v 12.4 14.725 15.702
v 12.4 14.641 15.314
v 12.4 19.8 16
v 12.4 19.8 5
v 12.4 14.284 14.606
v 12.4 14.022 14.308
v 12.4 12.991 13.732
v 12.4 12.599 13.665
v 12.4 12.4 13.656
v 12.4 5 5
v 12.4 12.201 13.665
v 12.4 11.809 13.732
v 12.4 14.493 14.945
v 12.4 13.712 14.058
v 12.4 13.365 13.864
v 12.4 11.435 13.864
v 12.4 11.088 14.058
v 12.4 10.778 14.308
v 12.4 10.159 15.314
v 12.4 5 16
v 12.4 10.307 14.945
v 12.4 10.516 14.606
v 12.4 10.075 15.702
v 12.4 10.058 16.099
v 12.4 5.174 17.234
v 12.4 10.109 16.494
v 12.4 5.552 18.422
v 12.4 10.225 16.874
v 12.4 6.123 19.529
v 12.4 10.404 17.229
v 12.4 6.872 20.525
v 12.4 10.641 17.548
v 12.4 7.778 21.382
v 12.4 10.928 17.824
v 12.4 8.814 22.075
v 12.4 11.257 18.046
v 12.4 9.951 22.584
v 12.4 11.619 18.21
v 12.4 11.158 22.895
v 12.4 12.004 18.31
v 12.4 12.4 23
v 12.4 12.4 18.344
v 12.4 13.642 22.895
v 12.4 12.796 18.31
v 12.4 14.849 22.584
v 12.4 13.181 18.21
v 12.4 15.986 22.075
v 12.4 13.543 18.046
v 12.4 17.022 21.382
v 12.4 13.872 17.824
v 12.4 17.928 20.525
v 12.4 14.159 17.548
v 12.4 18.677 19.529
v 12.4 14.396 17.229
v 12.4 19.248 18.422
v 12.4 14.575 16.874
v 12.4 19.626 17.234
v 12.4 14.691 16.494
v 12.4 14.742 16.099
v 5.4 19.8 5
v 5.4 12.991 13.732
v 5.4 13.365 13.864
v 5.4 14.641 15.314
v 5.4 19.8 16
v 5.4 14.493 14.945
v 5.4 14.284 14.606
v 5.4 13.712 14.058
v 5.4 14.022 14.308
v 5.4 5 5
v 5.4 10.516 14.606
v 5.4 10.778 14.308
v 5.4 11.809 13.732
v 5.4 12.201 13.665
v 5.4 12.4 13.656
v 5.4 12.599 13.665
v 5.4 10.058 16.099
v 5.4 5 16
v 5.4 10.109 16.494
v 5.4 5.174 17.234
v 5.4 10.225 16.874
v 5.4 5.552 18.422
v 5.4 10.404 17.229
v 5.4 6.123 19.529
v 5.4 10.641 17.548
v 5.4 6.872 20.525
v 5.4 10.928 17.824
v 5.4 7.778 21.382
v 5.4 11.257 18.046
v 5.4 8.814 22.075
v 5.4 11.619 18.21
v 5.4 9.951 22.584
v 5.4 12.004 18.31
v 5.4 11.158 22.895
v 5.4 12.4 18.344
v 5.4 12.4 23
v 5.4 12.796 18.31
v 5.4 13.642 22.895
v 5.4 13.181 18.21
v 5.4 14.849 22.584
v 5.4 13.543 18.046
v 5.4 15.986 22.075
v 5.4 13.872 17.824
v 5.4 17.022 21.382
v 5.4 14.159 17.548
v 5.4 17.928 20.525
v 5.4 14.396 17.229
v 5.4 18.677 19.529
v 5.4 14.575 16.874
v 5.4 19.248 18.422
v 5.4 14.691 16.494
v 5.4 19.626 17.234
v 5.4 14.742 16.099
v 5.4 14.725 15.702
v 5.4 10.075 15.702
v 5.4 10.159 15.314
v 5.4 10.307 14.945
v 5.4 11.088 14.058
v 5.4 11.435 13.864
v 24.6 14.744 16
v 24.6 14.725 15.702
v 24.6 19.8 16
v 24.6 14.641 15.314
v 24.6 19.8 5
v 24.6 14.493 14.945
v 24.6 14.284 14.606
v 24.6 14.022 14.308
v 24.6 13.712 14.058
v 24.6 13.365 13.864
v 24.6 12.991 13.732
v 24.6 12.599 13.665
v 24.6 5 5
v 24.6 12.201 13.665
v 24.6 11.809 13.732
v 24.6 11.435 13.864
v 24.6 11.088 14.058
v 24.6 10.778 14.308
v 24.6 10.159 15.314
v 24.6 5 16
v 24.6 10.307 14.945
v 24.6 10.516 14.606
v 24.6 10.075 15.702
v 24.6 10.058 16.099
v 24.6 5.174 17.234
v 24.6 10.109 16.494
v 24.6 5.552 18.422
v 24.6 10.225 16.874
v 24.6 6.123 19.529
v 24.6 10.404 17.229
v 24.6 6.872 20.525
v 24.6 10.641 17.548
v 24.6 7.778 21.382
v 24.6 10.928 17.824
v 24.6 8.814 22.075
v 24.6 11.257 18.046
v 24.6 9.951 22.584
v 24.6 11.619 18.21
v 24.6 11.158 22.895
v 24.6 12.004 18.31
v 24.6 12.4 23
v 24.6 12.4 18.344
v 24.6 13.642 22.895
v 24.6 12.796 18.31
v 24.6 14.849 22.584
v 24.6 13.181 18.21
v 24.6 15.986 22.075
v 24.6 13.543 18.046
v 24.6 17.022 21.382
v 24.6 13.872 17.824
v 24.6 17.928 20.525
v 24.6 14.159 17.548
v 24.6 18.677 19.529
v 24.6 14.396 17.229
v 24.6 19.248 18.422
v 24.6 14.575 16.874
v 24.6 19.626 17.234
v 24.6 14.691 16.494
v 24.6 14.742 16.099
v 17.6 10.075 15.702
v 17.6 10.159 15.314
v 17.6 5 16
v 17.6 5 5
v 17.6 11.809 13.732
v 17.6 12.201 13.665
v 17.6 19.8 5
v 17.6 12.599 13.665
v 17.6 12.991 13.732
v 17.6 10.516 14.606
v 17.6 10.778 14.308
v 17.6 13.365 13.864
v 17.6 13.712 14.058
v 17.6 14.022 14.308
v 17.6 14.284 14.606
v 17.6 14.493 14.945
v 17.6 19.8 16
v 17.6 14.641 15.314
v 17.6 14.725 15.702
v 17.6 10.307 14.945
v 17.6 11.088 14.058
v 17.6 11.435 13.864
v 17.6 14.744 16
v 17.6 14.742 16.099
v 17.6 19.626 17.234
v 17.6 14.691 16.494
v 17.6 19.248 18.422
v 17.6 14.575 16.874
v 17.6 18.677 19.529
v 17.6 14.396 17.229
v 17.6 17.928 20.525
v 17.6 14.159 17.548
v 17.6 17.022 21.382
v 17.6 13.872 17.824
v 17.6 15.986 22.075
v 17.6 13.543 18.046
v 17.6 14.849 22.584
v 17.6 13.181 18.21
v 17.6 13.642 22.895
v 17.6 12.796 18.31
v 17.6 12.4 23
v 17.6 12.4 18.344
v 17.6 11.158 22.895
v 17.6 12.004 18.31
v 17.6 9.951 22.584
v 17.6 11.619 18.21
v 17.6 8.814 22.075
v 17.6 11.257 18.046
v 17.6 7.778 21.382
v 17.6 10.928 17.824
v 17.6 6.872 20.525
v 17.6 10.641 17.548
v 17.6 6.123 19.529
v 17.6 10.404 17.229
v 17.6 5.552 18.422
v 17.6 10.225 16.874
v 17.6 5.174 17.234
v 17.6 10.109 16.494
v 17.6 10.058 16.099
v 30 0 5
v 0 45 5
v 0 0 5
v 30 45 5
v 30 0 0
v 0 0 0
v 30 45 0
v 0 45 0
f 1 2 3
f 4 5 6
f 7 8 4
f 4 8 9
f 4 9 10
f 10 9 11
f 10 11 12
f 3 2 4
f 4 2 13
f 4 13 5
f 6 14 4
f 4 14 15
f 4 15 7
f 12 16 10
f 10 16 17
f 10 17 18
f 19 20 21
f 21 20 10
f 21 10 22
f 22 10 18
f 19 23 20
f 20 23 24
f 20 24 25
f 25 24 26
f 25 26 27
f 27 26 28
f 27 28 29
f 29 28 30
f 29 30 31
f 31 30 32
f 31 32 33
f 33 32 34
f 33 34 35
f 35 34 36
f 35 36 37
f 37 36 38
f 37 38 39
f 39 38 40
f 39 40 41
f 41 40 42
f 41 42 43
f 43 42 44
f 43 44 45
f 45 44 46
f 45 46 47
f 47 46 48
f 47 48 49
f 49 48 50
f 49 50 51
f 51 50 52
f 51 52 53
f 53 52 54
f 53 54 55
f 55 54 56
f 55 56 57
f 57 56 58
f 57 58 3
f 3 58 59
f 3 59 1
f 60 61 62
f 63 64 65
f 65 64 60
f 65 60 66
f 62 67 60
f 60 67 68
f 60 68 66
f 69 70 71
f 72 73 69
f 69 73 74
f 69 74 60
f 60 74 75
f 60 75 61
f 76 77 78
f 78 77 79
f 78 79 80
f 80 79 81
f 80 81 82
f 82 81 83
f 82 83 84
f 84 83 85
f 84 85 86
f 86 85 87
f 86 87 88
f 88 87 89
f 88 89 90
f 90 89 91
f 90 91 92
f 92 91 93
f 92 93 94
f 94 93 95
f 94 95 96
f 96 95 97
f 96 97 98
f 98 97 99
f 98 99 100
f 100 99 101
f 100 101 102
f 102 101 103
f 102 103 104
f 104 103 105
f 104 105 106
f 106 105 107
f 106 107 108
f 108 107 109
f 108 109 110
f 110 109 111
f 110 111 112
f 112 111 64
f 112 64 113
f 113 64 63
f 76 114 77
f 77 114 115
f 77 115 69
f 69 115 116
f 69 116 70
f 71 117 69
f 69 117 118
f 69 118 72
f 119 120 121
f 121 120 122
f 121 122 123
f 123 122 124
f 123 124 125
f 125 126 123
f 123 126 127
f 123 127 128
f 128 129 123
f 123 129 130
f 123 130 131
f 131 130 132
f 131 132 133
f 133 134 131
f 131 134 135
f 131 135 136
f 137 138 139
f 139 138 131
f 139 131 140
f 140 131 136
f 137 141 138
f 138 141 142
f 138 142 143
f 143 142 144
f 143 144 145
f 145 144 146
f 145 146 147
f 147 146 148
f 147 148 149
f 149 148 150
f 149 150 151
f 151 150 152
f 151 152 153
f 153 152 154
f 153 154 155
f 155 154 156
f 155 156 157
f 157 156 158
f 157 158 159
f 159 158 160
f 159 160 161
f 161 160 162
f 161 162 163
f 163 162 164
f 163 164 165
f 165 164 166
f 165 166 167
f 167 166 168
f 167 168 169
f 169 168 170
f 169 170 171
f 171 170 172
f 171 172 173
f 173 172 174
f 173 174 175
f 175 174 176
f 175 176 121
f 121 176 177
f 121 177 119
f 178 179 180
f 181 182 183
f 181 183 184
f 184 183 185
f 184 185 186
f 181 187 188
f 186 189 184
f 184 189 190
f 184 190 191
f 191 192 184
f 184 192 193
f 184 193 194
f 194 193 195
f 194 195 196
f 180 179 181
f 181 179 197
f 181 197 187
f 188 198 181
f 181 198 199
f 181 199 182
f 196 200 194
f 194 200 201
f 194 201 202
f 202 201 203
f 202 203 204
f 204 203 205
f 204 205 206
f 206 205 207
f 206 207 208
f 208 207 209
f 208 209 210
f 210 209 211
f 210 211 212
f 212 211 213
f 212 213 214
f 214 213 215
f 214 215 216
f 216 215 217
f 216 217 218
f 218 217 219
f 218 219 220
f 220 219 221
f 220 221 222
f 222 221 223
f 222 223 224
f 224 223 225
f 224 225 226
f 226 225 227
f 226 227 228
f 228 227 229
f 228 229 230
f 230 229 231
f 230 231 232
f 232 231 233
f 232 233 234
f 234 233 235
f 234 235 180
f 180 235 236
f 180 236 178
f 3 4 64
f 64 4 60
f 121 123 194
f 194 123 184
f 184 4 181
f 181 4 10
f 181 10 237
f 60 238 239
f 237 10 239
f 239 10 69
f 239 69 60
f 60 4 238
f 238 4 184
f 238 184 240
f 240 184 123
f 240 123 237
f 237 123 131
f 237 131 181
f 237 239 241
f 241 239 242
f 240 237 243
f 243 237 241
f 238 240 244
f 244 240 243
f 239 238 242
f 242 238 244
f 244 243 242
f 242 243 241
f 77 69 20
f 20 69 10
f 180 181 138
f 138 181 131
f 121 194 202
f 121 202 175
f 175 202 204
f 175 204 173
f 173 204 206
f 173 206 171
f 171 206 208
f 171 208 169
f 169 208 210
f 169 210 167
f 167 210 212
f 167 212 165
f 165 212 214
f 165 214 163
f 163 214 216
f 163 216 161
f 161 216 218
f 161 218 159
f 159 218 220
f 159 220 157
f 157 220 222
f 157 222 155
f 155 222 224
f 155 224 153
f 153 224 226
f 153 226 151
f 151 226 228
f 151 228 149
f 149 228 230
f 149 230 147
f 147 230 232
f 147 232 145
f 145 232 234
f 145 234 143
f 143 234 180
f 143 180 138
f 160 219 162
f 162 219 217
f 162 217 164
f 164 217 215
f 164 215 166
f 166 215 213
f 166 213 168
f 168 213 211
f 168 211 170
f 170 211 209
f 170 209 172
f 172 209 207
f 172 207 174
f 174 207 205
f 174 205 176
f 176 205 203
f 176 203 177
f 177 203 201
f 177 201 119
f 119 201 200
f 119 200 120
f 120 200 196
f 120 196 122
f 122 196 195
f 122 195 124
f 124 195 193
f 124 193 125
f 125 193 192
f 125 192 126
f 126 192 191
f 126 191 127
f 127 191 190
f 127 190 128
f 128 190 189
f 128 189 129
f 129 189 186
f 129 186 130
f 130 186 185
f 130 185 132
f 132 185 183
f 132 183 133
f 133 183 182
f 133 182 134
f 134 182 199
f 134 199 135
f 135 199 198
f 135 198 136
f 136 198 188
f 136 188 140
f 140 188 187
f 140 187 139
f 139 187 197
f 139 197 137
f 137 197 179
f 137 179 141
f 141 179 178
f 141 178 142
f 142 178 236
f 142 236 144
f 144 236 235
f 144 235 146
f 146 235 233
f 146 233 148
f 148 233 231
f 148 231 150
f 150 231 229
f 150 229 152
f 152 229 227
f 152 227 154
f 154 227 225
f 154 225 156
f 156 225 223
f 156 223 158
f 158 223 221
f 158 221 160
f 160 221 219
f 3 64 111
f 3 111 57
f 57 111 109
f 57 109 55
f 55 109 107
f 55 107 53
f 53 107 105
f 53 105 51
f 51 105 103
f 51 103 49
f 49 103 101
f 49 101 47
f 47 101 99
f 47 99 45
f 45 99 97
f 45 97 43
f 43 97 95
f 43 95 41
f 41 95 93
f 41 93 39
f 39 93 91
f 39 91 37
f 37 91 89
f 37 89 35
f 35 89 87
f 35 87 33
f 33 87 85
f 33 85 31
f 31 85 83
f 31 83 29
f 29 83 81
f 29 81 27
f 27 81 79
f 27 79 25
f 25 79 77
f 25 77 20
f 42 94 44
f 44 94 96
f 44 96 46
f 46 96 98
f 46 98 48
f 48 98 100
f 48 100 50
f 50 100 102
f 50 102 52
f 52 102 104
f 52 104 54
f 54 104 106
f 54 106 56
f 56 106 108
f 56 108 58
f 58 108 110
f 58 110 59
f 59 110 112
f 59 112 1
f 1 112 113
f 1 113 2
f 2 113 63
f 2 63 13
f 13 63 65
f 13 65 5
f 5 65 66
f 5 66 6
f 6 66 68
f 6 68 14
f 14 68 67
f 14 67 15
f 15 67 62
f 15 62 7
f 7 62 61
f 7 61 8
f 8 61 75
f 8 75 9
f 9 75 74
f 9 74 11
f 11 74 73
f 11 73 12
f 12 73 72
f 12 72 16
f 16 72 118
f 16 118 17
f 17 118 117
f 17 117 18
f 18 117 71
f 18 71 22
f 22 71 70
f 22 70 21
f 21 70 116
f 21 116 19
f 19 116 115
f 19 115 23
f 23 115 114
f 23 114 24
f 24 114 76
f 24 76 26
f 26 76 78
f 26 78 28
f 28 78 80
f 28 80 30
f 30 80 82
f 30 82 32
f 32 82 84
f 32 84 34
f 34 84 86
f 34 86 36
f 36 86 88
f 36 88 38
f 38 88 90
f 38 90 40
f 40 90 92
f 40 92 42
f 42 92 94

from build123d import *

# Parameters (mm, degrees)
CROQUIS1_W                 = 15
CROQUIS1_H                 = 45
CROQUIS1_W_2               = 7
CROQUIS1_H_2               = 14.8
SALIENTE_EXTRUIR1_DEPTH    = 5
CROQUIS2_W                 = 7
CROQUIS2_H                 = 14.8
SALIENTE_EXTRUIR4_DEPTH    = 18
CORTAR_EXTRUIR3_DEPTH      = 57.206405329
CORTAR_EXTRUIR3_DEPTH_BACK = 57.206405329


with BuildPart() as part:
    # Croquis1 → Saliente-Extruir1 (new body)
    # profile 1 of 4: a face of its own
    with BuildSketch(Plane.XY):
        with Locations((7.5, 22.5)):
            Rectangle(CROQUIS1_W, CROQUIS1_H)
        with Locations((9, 12.4)):
            Rectangle(CROQUIS1_W_2, CROQUIS1_H_2, mode=Mode.SUBTRACT)
    # profile 2 of 4: a face of its own
    with BuildSketch(Plane.XY):
        with Locations((22.5, 22.5)):
            Rectangle(CROQUIS1_W, CROQUIS1_H)
        with Locations((21, 12.4)):
            Rectangle(CROQUIS1_W_2, CROQUIS1_H_2, mode=Mode.SUBTRACT)
    # profile 3 of 4: a face of its own
    with BuildSketch(Plane.XY):
        with Locations((21, 12.4)):
            Rectangle(CROQUIS1_W_2, CROQUIS1_H_2)
    # profile 4 of 4: a face of its own
    with BuildSketch(Plane.XY):
        with Locations((9, 12.4)):
            Rectangle(CROQUIS1_W_2, CROQUIS1_H_2)
    extrude(amount=SALIENTE_EXTRUIR1_DEPTH)

    # Croquis2 → Saliente-Extruir4 (add)
    with BuildSketch(Plane.XY.offset(5)):
        with Locations((8.9, 12.4)):
            Rectangle(CROQUIS2_W, CROQUIS2_H)
        with Locations((21.1, 12.4)):
            Rectangle(CROQUIS2_W, CROQUIS2_H)
    extrude(amount=SALIENTE_EXTRUIR4_DEPTH)

    # Croquis4 → Cortar-Extruir3 (cut, two sides: drawn at the far end of the back side and taken through both)
    with BuildSketch(Plane.ZY.offset(-5.4).offset(-CORTAR_EXTRUIR3_DEPTH_BACK)):
        with BuildLine():
            Line((16, 14.74375), (16, 12.4))
            Line((16, 12.4), (18.34375, 12.4))
            ThreePointArc((18.34375, 12.4), (17.657281518, 14.057281518), (16, 14.74375))
        make_face()
        with BuildLine():
            Line((16, 10.05625), (16, 12.4))
            Line((16, 12.4), (13.65625, 12.4))
            ThreePointArc((13.65625, 12.4), (14.342718482, 10.742718482), (16, 10.05625))
        make_face()
        with BuildLine():
            Line((13.65625, 12.4), (16, 12.4))
            Line((16, 12.4), (16, 14.74375))
            ThreePointArc((16, 14.74375), (14.342718482, 14.057281518), (13.65625, 12.4))
        make_face()
        with BuildLine():
            Line((18.34375, 12.4), (16, 12.4))
            Line((16, 12.4), (16, 10.05625))
            ThreePointArc((16, 10.05625), (17.657281518, 10.742718482), (18.34375, 12.4))
        make_face()
        with BuildLine():
            ThreePointArc((16, 19.8), (20.97274021, 17.493132631), (23, 12.4))
            Line((23, 12.4), (23, 19.8))
            Line((23, 19.8), (16, 19.8))
        make_face()
        with BuildLine():
            Line((23, 5), (23, 12.4))
            ThreePointArc((23, 12.4), (20.97274021, 7.306867369), (16, 5))
            Line((16, 5), (23, 5))
        make_face()
    extrude(amount=CORTAR_EXTRUIR3_DEPTH + CORTAR_EXTRUIR3_DEPTH_BACK, mode=Mode.SUBTRACT)


solid = part.part
